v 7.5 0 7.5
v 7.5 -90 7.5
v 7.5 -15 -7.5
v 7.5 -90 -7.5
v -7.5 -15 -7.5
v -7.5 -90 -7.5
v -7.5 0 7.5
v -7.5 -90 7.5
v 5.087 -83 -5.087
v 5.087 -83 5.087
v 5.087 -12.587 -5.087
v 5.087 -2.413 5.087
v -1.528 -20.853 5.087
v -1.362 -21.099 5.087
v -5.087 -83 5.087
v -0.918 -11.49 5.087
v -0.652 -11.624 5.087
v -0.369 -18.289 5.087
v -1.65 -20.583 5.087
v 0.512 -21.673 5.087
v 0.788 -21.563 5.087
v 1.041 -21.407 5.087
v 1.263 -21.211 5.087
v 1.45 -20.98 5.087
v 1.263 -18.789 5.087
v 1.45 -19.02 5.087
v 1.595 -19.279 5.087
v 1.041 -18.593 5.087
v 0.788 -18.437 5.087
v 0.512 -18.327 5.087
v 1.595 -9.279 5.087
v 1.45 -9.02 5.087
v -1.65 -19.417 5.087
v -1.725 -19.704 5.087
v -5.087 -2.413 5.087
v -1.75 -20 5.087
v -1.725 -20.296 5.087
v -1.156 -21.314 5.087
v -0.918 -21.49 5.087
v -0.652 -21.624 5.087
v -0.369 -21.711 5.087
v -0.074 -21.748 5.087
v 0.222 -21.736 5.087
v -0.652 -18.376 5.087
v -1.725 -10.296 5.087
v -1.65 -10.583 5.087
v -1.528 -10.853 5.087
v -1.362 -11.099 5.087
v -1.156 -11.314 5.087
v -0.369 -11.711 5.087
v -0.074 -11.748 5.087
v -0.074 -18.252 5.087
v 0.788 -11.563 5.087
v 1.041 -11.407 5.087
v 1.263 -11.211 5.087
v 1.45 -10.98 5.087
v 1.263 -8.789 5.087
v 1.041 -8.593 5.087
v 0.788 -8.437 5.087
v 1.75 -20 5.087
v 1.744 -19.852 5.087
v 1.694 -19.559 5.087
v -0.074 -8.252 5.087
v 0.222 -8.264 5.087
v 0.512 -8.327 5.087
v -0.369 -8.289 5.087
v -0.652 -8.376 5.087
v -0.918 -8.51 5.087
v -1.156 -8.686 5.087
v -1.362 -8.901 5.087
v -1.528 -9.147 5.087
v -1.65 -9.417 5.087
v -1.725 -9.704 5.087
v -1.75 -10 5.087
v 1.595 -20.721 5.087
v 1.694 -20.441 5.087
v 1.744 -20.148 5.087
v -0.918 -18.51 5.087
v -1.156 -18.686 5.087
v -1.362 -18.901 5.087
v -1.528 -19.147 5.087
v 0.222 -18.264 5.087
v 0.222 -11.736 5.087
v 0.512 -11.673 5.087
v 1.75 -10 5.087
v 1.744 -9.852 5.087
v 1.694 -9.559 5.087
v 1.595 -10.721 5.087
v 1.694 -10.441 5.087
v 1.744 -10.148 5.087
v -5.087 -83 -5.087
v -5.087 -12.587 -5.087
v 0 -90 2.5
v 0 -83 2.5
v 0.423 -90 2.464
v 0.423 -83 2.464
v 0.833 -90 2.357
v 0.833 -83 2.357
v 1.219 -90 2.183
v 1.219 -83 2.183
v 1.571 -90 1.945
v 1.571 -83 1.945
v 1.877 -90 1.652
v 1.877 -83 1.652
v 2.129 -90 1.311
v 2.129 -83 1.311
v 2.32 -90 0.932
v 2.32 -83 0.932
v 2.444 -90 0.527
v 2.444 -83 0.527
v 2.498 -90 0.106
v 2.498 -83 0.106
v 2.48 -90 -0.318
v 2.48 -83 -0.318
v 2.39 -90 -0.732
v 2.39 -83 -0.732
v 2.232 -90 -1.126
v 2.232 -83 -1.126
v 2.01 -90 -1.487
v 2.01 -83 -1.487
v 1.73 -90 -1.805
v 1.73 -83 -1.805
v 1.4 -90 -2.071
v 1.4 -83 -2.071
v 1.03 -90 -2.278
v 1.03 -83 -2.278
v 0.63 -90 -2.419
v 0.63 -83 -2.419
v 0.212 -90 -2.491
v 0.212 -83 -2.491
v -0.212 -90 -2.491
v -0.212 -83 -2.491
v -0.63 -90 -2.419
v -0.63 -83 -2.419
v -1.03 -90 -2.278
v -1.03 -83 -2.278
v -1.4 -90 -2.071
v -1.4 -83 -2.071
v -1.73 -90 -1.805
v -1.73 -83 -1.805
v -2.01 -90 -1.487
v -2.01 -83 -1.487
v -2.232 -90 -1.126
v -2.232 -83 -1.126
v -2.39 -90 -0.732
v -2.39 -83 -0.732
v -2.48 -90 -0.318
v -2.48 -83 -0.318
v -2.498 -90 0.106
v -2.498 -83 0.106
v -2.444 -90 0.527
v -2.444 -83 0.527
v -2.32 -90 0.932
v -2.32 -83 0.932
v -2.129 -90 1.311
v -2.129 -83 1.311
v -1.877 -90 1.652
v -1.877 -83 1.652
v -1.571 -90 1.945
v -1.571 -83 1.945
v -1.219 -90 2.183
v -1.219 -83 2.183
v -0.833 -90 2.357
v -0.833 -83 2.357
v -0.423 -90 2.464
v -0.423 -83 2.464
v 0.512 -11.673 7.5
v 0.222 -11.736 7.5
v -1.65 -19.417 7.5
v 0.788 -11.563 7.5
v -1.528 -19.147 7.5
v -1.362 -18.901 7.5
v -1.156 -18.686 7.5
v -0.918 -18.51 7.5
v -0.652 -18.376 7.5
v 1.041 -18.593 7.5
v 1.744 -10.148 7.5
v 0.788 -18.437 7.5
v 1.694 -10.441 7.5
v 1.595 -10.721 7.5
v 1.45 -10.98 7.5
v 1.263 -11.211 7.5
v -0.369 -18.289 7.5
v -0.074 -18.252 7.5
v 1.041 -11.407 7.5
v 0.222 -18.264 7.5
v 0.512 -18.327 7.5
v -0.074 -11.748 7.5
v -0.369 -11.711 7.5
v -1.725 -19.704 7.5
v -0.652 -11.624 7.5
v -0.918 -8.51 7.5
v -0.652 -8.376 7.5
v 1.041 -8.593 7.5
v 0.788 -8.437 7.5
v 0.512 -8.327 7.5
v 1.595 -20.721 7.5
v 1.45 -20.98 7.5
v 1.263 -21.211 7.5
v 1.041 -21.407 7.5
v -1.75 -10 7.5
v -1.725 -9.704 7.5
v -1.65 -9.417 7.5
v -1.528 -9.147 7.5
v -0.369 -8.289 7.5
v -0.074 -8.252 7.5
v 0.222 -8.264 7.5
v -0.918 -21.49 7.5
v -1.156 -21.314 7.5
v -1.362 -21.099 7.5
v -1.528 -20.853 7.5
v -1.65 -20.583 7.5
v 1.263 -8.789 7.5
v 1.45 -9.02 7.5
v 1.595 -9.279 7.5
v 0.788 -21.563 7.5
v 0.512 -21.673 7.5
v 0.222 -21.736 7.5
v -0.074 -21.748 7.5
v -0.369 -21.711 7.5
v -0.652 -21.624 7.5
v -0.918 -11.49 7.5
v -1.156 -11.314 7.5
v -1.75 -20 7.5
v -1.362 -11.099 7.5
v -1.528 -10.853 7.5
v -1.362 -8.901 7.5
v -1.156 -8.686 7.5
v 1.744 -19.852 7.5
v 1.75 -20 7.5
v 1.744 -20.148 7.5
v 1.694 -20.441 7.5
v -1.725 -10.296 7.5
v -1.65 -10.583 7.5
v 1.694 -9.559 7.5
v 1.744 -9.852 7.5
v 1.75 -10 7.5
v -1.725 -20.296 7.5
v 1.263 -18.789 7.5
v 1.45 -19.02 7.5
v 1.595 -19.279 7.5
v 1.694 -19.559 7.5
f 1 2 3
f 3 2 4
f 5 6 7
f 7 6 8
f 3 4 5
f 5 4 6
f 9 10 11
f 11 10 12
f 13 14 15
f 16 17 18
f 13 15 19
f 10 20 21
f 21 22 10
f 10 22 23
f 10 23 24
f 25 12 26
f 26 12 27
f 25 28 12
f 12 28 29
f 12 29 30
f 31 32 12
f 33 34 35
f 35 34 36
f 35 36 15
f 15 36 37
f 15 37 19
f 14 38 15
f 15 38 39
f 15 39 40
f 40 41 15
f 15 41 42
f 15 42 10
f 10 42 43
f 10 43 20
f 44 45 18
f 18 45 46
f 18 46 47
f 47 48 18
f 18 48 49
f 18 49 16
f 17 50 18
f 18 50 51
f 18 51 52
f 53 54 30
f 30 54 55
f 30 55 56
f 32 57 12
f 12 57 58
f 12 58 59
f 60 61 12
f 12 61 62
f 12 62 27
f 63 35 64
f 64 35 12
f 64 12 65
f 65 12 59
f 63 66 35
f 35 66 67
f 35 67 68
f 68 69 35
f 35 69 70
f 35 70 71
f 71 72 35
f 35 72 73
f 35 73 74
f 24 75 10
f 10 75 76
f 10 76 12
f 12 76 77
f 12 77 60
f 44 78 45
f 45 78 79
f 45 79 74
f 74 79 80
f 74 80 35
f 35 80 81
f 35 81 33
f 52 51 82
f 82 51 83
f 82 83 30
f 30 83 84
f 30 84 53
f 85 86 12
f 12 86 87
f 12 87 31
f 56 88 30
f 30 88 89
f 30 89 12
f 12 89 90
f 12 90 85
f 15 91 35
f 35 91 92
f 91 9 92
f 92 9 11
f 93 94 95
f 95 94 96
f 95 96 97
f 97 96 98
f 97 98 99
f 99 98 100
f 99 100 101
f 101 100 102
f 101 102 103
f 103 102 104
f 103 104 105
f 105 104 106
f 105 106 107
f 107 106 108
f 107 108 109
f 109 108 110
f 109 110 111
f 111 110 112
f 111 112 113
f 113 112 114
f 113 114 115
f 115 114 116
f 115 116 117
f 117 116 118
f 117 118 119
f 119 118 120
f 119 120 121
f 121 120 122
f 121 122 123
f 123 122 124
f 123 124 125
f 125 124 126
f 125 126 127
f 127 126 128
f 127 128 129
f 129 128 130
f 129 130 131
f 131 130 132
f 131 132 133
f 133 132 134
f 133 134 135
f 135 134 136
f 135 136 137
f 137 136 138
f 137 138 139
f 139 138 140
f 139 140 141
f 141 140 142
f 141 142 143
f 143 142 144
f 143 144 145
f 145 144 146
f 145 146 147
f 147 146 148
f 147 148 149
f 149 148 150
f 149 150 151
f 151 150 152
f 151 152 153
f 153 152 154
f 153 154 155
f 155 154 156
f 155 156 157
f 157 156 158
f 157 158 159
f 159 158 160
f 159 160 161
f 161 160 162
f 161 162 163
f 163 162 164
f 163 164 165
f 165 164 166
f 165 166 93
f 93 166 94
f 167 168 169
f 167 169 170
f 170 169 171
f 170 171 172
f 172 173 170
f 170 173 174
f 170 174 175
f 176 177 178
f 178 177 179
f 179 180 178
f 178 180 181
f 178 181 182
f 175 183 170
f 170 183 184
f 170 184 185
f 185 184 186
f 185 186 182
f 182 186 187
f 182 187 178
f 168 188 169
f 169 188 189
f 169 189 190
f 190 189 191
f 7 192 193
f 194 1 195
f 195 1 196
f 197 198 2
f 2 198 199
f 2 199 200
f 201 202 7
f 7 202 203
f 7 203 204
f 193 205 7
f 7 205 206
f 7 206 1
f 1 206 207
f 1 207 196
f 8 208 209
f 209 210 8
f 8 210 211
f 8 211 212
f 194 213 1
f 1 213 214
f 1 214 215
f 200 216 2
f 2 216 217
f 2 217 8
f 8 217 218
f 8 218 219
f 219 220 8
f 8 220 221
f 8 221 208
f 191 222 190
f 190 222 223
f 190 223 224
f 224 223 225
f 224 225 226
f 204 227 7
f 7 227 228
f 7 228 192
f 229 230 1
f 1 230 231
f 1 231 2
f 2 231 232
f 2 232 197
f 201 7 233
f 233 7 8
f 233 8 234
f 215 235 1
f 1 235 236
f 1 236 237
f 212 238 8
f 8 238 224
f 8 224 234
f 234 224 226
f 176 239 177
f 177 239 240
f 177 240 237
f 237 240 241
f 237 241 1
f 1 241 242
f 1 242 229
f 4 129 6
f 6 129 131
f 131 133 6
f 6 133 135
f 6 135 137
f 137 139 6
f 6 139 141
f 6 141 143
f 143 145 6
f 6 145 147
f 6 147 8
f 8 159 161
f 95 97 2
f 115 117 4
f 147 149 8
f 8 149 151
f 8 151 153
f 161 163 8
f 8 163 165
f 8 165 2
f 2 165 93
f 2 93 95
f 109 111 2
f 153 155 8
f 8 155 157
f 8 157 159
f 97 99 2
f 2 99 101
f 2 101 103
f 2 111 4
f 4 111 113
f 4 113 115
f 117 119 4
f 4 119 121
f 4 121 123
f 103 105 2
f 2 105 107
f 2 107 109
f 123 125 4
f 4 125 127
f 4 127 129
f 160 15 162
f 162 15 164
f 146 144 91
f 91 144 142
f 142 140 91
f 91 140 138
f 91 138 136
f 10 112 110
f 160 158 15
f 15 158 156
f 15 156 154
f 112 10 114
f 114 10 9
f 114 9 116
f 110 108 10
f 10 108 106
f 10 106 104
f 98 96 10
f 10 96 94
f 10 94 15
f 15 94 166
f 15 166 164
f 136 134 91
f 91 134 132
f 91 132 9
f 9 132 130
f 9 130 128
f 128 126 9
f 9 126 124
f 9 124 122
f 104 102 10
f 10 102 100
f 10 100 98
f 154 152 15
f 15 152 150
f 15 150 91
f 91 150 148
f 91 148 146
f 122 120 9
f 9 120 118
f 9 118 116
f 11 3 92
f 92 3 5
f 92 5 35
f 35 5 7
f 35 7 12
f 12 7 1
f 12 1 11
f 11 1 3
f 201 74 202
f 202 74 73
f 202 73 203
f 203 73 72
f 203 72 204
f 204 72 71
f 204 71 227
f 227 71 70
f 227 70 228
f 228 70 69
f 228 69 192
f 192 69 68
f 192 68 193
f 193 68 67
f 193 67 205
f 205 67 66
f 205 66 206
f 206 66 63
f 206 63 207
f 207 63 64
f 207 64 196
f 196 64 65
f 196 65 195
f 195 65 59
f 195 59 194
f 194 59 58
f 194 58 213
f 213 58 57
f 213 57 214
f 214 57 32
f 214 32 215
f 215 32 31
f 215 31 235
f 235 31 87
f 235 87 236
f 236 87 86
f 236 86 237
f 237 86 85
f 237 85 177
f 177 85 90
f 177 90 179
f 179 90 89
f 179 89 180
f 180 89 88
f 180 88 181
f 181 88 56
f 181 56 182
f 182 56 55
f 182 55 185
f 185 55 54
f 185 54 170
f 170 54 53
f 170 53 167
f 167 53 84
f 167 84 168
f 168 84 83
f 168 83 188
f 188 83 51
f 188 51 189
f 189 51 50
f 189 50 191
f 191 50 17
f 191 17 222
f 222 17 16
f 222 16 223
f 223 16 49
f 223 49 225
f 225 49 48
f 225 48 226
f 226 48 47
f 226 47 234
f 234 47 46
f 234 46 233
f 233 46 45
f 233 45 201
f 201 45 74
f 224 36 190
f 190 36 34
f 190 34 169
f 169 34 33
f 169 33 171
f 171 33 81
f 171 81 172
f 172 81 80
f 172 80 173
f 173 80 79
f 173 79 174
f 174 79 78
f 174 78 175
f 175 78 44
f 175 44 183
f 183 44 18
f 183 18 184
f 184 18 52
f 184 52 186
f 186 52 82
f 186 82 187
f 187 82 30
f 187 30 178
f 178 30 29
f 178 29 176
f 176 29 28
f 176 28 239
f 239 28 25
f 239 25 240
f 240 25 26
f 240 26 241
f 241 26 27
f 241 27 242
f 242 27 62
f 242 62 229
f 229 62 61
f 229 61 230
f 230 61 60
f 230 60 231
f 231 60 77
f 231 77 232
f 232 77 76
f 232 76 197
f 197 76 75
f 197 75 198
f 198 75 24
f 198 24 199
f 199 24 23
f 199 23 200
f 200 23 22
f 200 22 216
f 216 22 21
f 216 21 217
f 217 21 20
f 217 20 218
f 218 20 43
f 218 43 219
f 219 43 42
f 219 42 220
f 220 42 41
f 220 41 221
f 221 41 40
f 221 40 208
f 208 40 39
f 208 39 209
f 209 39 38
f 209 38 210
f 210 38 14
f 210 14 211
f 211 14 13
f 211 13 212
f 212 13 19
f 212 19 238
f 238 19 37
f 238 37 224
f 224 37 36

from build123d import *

# Parameters (mm, degrees)
SKETCH1_W               = 15
SKETCH1_H               = 15
SKETCH1_R               = 2.5
BOSS_EXTRUDE1_DEPTH     = 90
SKETCH2_W               = 10.174
SKETCH2_H               = 10.174
CUT_EXTRUDE1_DEPTH      = 83
CUT_EXTRUDE2_DEPTH      = 83
CUT_EXTRUDE2_DEPTH_BACK = 83
SKETCH4_R               = 1.75
CUT_EXTRUDE3_DEPTH      = 83


with BuildPart() as part:
    # Sketch1 → Boss-Extrude1 (new body)
    with BuildSketch(Plane(origin=(0, 0, 0), x_dir=(1, 0, 0), z_dir=(0, 1, 0))):
        Rectangle(SKETCH1_W, SKETCH1_H)
        with Locations(Location((0, 0, 0), (0, 0, 270))):
            Circle(SKETCH1_R, mode=Mode.SUBTRACT)
    extrude(amount=-BOSS_EXTRUDE1_DEPTH)

    # Sketch2 → Cut-Extrude1 (cut)
    with BuildSketch(Plane(origin=(0, 0, 0), x_dir=(1, 0, 0), z_dir=(0, 1, 0))):
        Rectangle(SKETCH2_W, SKETCH2_H)
    extrude(amount=-CUT_EXTRUDE1_DEPTH, mode=Mode.SUBTRACT)

    # Sketch3 → Cut-Extrude2 (cut, two sides: drawn at the far end of the back side and taken through both)
    with BuildSketch(Plane(origin=(0, 0, 0), x_dir=(0, 0, -1), z_dir=(1, 0, 0)).offset(-CUT_EXTRUDE2_DEPTH_BACK)):
        Polygon((-7.5, 0), (7.5, -15), (7.5, 0), align=None)
    extrude(amount=CUT_EXTRUDE2_DEPTH + CUT_EXTRUDE2_DEPTH_BACK, mode=Mode.SUBTRACT)

    # Sketch4 → Cut-Extrude3 (cut)
    with BuildSketch(Plane.XY):
        with Locations((0, -10)):
            Circle(SKETCH4_R)
        with Locations((0, -20)):
            Circle(SKETCH4_R)
    extrude(amount=CUT_EXTRUDE3_DEPTH, mode=Mode.SUBTRACT)


solid = part.part
